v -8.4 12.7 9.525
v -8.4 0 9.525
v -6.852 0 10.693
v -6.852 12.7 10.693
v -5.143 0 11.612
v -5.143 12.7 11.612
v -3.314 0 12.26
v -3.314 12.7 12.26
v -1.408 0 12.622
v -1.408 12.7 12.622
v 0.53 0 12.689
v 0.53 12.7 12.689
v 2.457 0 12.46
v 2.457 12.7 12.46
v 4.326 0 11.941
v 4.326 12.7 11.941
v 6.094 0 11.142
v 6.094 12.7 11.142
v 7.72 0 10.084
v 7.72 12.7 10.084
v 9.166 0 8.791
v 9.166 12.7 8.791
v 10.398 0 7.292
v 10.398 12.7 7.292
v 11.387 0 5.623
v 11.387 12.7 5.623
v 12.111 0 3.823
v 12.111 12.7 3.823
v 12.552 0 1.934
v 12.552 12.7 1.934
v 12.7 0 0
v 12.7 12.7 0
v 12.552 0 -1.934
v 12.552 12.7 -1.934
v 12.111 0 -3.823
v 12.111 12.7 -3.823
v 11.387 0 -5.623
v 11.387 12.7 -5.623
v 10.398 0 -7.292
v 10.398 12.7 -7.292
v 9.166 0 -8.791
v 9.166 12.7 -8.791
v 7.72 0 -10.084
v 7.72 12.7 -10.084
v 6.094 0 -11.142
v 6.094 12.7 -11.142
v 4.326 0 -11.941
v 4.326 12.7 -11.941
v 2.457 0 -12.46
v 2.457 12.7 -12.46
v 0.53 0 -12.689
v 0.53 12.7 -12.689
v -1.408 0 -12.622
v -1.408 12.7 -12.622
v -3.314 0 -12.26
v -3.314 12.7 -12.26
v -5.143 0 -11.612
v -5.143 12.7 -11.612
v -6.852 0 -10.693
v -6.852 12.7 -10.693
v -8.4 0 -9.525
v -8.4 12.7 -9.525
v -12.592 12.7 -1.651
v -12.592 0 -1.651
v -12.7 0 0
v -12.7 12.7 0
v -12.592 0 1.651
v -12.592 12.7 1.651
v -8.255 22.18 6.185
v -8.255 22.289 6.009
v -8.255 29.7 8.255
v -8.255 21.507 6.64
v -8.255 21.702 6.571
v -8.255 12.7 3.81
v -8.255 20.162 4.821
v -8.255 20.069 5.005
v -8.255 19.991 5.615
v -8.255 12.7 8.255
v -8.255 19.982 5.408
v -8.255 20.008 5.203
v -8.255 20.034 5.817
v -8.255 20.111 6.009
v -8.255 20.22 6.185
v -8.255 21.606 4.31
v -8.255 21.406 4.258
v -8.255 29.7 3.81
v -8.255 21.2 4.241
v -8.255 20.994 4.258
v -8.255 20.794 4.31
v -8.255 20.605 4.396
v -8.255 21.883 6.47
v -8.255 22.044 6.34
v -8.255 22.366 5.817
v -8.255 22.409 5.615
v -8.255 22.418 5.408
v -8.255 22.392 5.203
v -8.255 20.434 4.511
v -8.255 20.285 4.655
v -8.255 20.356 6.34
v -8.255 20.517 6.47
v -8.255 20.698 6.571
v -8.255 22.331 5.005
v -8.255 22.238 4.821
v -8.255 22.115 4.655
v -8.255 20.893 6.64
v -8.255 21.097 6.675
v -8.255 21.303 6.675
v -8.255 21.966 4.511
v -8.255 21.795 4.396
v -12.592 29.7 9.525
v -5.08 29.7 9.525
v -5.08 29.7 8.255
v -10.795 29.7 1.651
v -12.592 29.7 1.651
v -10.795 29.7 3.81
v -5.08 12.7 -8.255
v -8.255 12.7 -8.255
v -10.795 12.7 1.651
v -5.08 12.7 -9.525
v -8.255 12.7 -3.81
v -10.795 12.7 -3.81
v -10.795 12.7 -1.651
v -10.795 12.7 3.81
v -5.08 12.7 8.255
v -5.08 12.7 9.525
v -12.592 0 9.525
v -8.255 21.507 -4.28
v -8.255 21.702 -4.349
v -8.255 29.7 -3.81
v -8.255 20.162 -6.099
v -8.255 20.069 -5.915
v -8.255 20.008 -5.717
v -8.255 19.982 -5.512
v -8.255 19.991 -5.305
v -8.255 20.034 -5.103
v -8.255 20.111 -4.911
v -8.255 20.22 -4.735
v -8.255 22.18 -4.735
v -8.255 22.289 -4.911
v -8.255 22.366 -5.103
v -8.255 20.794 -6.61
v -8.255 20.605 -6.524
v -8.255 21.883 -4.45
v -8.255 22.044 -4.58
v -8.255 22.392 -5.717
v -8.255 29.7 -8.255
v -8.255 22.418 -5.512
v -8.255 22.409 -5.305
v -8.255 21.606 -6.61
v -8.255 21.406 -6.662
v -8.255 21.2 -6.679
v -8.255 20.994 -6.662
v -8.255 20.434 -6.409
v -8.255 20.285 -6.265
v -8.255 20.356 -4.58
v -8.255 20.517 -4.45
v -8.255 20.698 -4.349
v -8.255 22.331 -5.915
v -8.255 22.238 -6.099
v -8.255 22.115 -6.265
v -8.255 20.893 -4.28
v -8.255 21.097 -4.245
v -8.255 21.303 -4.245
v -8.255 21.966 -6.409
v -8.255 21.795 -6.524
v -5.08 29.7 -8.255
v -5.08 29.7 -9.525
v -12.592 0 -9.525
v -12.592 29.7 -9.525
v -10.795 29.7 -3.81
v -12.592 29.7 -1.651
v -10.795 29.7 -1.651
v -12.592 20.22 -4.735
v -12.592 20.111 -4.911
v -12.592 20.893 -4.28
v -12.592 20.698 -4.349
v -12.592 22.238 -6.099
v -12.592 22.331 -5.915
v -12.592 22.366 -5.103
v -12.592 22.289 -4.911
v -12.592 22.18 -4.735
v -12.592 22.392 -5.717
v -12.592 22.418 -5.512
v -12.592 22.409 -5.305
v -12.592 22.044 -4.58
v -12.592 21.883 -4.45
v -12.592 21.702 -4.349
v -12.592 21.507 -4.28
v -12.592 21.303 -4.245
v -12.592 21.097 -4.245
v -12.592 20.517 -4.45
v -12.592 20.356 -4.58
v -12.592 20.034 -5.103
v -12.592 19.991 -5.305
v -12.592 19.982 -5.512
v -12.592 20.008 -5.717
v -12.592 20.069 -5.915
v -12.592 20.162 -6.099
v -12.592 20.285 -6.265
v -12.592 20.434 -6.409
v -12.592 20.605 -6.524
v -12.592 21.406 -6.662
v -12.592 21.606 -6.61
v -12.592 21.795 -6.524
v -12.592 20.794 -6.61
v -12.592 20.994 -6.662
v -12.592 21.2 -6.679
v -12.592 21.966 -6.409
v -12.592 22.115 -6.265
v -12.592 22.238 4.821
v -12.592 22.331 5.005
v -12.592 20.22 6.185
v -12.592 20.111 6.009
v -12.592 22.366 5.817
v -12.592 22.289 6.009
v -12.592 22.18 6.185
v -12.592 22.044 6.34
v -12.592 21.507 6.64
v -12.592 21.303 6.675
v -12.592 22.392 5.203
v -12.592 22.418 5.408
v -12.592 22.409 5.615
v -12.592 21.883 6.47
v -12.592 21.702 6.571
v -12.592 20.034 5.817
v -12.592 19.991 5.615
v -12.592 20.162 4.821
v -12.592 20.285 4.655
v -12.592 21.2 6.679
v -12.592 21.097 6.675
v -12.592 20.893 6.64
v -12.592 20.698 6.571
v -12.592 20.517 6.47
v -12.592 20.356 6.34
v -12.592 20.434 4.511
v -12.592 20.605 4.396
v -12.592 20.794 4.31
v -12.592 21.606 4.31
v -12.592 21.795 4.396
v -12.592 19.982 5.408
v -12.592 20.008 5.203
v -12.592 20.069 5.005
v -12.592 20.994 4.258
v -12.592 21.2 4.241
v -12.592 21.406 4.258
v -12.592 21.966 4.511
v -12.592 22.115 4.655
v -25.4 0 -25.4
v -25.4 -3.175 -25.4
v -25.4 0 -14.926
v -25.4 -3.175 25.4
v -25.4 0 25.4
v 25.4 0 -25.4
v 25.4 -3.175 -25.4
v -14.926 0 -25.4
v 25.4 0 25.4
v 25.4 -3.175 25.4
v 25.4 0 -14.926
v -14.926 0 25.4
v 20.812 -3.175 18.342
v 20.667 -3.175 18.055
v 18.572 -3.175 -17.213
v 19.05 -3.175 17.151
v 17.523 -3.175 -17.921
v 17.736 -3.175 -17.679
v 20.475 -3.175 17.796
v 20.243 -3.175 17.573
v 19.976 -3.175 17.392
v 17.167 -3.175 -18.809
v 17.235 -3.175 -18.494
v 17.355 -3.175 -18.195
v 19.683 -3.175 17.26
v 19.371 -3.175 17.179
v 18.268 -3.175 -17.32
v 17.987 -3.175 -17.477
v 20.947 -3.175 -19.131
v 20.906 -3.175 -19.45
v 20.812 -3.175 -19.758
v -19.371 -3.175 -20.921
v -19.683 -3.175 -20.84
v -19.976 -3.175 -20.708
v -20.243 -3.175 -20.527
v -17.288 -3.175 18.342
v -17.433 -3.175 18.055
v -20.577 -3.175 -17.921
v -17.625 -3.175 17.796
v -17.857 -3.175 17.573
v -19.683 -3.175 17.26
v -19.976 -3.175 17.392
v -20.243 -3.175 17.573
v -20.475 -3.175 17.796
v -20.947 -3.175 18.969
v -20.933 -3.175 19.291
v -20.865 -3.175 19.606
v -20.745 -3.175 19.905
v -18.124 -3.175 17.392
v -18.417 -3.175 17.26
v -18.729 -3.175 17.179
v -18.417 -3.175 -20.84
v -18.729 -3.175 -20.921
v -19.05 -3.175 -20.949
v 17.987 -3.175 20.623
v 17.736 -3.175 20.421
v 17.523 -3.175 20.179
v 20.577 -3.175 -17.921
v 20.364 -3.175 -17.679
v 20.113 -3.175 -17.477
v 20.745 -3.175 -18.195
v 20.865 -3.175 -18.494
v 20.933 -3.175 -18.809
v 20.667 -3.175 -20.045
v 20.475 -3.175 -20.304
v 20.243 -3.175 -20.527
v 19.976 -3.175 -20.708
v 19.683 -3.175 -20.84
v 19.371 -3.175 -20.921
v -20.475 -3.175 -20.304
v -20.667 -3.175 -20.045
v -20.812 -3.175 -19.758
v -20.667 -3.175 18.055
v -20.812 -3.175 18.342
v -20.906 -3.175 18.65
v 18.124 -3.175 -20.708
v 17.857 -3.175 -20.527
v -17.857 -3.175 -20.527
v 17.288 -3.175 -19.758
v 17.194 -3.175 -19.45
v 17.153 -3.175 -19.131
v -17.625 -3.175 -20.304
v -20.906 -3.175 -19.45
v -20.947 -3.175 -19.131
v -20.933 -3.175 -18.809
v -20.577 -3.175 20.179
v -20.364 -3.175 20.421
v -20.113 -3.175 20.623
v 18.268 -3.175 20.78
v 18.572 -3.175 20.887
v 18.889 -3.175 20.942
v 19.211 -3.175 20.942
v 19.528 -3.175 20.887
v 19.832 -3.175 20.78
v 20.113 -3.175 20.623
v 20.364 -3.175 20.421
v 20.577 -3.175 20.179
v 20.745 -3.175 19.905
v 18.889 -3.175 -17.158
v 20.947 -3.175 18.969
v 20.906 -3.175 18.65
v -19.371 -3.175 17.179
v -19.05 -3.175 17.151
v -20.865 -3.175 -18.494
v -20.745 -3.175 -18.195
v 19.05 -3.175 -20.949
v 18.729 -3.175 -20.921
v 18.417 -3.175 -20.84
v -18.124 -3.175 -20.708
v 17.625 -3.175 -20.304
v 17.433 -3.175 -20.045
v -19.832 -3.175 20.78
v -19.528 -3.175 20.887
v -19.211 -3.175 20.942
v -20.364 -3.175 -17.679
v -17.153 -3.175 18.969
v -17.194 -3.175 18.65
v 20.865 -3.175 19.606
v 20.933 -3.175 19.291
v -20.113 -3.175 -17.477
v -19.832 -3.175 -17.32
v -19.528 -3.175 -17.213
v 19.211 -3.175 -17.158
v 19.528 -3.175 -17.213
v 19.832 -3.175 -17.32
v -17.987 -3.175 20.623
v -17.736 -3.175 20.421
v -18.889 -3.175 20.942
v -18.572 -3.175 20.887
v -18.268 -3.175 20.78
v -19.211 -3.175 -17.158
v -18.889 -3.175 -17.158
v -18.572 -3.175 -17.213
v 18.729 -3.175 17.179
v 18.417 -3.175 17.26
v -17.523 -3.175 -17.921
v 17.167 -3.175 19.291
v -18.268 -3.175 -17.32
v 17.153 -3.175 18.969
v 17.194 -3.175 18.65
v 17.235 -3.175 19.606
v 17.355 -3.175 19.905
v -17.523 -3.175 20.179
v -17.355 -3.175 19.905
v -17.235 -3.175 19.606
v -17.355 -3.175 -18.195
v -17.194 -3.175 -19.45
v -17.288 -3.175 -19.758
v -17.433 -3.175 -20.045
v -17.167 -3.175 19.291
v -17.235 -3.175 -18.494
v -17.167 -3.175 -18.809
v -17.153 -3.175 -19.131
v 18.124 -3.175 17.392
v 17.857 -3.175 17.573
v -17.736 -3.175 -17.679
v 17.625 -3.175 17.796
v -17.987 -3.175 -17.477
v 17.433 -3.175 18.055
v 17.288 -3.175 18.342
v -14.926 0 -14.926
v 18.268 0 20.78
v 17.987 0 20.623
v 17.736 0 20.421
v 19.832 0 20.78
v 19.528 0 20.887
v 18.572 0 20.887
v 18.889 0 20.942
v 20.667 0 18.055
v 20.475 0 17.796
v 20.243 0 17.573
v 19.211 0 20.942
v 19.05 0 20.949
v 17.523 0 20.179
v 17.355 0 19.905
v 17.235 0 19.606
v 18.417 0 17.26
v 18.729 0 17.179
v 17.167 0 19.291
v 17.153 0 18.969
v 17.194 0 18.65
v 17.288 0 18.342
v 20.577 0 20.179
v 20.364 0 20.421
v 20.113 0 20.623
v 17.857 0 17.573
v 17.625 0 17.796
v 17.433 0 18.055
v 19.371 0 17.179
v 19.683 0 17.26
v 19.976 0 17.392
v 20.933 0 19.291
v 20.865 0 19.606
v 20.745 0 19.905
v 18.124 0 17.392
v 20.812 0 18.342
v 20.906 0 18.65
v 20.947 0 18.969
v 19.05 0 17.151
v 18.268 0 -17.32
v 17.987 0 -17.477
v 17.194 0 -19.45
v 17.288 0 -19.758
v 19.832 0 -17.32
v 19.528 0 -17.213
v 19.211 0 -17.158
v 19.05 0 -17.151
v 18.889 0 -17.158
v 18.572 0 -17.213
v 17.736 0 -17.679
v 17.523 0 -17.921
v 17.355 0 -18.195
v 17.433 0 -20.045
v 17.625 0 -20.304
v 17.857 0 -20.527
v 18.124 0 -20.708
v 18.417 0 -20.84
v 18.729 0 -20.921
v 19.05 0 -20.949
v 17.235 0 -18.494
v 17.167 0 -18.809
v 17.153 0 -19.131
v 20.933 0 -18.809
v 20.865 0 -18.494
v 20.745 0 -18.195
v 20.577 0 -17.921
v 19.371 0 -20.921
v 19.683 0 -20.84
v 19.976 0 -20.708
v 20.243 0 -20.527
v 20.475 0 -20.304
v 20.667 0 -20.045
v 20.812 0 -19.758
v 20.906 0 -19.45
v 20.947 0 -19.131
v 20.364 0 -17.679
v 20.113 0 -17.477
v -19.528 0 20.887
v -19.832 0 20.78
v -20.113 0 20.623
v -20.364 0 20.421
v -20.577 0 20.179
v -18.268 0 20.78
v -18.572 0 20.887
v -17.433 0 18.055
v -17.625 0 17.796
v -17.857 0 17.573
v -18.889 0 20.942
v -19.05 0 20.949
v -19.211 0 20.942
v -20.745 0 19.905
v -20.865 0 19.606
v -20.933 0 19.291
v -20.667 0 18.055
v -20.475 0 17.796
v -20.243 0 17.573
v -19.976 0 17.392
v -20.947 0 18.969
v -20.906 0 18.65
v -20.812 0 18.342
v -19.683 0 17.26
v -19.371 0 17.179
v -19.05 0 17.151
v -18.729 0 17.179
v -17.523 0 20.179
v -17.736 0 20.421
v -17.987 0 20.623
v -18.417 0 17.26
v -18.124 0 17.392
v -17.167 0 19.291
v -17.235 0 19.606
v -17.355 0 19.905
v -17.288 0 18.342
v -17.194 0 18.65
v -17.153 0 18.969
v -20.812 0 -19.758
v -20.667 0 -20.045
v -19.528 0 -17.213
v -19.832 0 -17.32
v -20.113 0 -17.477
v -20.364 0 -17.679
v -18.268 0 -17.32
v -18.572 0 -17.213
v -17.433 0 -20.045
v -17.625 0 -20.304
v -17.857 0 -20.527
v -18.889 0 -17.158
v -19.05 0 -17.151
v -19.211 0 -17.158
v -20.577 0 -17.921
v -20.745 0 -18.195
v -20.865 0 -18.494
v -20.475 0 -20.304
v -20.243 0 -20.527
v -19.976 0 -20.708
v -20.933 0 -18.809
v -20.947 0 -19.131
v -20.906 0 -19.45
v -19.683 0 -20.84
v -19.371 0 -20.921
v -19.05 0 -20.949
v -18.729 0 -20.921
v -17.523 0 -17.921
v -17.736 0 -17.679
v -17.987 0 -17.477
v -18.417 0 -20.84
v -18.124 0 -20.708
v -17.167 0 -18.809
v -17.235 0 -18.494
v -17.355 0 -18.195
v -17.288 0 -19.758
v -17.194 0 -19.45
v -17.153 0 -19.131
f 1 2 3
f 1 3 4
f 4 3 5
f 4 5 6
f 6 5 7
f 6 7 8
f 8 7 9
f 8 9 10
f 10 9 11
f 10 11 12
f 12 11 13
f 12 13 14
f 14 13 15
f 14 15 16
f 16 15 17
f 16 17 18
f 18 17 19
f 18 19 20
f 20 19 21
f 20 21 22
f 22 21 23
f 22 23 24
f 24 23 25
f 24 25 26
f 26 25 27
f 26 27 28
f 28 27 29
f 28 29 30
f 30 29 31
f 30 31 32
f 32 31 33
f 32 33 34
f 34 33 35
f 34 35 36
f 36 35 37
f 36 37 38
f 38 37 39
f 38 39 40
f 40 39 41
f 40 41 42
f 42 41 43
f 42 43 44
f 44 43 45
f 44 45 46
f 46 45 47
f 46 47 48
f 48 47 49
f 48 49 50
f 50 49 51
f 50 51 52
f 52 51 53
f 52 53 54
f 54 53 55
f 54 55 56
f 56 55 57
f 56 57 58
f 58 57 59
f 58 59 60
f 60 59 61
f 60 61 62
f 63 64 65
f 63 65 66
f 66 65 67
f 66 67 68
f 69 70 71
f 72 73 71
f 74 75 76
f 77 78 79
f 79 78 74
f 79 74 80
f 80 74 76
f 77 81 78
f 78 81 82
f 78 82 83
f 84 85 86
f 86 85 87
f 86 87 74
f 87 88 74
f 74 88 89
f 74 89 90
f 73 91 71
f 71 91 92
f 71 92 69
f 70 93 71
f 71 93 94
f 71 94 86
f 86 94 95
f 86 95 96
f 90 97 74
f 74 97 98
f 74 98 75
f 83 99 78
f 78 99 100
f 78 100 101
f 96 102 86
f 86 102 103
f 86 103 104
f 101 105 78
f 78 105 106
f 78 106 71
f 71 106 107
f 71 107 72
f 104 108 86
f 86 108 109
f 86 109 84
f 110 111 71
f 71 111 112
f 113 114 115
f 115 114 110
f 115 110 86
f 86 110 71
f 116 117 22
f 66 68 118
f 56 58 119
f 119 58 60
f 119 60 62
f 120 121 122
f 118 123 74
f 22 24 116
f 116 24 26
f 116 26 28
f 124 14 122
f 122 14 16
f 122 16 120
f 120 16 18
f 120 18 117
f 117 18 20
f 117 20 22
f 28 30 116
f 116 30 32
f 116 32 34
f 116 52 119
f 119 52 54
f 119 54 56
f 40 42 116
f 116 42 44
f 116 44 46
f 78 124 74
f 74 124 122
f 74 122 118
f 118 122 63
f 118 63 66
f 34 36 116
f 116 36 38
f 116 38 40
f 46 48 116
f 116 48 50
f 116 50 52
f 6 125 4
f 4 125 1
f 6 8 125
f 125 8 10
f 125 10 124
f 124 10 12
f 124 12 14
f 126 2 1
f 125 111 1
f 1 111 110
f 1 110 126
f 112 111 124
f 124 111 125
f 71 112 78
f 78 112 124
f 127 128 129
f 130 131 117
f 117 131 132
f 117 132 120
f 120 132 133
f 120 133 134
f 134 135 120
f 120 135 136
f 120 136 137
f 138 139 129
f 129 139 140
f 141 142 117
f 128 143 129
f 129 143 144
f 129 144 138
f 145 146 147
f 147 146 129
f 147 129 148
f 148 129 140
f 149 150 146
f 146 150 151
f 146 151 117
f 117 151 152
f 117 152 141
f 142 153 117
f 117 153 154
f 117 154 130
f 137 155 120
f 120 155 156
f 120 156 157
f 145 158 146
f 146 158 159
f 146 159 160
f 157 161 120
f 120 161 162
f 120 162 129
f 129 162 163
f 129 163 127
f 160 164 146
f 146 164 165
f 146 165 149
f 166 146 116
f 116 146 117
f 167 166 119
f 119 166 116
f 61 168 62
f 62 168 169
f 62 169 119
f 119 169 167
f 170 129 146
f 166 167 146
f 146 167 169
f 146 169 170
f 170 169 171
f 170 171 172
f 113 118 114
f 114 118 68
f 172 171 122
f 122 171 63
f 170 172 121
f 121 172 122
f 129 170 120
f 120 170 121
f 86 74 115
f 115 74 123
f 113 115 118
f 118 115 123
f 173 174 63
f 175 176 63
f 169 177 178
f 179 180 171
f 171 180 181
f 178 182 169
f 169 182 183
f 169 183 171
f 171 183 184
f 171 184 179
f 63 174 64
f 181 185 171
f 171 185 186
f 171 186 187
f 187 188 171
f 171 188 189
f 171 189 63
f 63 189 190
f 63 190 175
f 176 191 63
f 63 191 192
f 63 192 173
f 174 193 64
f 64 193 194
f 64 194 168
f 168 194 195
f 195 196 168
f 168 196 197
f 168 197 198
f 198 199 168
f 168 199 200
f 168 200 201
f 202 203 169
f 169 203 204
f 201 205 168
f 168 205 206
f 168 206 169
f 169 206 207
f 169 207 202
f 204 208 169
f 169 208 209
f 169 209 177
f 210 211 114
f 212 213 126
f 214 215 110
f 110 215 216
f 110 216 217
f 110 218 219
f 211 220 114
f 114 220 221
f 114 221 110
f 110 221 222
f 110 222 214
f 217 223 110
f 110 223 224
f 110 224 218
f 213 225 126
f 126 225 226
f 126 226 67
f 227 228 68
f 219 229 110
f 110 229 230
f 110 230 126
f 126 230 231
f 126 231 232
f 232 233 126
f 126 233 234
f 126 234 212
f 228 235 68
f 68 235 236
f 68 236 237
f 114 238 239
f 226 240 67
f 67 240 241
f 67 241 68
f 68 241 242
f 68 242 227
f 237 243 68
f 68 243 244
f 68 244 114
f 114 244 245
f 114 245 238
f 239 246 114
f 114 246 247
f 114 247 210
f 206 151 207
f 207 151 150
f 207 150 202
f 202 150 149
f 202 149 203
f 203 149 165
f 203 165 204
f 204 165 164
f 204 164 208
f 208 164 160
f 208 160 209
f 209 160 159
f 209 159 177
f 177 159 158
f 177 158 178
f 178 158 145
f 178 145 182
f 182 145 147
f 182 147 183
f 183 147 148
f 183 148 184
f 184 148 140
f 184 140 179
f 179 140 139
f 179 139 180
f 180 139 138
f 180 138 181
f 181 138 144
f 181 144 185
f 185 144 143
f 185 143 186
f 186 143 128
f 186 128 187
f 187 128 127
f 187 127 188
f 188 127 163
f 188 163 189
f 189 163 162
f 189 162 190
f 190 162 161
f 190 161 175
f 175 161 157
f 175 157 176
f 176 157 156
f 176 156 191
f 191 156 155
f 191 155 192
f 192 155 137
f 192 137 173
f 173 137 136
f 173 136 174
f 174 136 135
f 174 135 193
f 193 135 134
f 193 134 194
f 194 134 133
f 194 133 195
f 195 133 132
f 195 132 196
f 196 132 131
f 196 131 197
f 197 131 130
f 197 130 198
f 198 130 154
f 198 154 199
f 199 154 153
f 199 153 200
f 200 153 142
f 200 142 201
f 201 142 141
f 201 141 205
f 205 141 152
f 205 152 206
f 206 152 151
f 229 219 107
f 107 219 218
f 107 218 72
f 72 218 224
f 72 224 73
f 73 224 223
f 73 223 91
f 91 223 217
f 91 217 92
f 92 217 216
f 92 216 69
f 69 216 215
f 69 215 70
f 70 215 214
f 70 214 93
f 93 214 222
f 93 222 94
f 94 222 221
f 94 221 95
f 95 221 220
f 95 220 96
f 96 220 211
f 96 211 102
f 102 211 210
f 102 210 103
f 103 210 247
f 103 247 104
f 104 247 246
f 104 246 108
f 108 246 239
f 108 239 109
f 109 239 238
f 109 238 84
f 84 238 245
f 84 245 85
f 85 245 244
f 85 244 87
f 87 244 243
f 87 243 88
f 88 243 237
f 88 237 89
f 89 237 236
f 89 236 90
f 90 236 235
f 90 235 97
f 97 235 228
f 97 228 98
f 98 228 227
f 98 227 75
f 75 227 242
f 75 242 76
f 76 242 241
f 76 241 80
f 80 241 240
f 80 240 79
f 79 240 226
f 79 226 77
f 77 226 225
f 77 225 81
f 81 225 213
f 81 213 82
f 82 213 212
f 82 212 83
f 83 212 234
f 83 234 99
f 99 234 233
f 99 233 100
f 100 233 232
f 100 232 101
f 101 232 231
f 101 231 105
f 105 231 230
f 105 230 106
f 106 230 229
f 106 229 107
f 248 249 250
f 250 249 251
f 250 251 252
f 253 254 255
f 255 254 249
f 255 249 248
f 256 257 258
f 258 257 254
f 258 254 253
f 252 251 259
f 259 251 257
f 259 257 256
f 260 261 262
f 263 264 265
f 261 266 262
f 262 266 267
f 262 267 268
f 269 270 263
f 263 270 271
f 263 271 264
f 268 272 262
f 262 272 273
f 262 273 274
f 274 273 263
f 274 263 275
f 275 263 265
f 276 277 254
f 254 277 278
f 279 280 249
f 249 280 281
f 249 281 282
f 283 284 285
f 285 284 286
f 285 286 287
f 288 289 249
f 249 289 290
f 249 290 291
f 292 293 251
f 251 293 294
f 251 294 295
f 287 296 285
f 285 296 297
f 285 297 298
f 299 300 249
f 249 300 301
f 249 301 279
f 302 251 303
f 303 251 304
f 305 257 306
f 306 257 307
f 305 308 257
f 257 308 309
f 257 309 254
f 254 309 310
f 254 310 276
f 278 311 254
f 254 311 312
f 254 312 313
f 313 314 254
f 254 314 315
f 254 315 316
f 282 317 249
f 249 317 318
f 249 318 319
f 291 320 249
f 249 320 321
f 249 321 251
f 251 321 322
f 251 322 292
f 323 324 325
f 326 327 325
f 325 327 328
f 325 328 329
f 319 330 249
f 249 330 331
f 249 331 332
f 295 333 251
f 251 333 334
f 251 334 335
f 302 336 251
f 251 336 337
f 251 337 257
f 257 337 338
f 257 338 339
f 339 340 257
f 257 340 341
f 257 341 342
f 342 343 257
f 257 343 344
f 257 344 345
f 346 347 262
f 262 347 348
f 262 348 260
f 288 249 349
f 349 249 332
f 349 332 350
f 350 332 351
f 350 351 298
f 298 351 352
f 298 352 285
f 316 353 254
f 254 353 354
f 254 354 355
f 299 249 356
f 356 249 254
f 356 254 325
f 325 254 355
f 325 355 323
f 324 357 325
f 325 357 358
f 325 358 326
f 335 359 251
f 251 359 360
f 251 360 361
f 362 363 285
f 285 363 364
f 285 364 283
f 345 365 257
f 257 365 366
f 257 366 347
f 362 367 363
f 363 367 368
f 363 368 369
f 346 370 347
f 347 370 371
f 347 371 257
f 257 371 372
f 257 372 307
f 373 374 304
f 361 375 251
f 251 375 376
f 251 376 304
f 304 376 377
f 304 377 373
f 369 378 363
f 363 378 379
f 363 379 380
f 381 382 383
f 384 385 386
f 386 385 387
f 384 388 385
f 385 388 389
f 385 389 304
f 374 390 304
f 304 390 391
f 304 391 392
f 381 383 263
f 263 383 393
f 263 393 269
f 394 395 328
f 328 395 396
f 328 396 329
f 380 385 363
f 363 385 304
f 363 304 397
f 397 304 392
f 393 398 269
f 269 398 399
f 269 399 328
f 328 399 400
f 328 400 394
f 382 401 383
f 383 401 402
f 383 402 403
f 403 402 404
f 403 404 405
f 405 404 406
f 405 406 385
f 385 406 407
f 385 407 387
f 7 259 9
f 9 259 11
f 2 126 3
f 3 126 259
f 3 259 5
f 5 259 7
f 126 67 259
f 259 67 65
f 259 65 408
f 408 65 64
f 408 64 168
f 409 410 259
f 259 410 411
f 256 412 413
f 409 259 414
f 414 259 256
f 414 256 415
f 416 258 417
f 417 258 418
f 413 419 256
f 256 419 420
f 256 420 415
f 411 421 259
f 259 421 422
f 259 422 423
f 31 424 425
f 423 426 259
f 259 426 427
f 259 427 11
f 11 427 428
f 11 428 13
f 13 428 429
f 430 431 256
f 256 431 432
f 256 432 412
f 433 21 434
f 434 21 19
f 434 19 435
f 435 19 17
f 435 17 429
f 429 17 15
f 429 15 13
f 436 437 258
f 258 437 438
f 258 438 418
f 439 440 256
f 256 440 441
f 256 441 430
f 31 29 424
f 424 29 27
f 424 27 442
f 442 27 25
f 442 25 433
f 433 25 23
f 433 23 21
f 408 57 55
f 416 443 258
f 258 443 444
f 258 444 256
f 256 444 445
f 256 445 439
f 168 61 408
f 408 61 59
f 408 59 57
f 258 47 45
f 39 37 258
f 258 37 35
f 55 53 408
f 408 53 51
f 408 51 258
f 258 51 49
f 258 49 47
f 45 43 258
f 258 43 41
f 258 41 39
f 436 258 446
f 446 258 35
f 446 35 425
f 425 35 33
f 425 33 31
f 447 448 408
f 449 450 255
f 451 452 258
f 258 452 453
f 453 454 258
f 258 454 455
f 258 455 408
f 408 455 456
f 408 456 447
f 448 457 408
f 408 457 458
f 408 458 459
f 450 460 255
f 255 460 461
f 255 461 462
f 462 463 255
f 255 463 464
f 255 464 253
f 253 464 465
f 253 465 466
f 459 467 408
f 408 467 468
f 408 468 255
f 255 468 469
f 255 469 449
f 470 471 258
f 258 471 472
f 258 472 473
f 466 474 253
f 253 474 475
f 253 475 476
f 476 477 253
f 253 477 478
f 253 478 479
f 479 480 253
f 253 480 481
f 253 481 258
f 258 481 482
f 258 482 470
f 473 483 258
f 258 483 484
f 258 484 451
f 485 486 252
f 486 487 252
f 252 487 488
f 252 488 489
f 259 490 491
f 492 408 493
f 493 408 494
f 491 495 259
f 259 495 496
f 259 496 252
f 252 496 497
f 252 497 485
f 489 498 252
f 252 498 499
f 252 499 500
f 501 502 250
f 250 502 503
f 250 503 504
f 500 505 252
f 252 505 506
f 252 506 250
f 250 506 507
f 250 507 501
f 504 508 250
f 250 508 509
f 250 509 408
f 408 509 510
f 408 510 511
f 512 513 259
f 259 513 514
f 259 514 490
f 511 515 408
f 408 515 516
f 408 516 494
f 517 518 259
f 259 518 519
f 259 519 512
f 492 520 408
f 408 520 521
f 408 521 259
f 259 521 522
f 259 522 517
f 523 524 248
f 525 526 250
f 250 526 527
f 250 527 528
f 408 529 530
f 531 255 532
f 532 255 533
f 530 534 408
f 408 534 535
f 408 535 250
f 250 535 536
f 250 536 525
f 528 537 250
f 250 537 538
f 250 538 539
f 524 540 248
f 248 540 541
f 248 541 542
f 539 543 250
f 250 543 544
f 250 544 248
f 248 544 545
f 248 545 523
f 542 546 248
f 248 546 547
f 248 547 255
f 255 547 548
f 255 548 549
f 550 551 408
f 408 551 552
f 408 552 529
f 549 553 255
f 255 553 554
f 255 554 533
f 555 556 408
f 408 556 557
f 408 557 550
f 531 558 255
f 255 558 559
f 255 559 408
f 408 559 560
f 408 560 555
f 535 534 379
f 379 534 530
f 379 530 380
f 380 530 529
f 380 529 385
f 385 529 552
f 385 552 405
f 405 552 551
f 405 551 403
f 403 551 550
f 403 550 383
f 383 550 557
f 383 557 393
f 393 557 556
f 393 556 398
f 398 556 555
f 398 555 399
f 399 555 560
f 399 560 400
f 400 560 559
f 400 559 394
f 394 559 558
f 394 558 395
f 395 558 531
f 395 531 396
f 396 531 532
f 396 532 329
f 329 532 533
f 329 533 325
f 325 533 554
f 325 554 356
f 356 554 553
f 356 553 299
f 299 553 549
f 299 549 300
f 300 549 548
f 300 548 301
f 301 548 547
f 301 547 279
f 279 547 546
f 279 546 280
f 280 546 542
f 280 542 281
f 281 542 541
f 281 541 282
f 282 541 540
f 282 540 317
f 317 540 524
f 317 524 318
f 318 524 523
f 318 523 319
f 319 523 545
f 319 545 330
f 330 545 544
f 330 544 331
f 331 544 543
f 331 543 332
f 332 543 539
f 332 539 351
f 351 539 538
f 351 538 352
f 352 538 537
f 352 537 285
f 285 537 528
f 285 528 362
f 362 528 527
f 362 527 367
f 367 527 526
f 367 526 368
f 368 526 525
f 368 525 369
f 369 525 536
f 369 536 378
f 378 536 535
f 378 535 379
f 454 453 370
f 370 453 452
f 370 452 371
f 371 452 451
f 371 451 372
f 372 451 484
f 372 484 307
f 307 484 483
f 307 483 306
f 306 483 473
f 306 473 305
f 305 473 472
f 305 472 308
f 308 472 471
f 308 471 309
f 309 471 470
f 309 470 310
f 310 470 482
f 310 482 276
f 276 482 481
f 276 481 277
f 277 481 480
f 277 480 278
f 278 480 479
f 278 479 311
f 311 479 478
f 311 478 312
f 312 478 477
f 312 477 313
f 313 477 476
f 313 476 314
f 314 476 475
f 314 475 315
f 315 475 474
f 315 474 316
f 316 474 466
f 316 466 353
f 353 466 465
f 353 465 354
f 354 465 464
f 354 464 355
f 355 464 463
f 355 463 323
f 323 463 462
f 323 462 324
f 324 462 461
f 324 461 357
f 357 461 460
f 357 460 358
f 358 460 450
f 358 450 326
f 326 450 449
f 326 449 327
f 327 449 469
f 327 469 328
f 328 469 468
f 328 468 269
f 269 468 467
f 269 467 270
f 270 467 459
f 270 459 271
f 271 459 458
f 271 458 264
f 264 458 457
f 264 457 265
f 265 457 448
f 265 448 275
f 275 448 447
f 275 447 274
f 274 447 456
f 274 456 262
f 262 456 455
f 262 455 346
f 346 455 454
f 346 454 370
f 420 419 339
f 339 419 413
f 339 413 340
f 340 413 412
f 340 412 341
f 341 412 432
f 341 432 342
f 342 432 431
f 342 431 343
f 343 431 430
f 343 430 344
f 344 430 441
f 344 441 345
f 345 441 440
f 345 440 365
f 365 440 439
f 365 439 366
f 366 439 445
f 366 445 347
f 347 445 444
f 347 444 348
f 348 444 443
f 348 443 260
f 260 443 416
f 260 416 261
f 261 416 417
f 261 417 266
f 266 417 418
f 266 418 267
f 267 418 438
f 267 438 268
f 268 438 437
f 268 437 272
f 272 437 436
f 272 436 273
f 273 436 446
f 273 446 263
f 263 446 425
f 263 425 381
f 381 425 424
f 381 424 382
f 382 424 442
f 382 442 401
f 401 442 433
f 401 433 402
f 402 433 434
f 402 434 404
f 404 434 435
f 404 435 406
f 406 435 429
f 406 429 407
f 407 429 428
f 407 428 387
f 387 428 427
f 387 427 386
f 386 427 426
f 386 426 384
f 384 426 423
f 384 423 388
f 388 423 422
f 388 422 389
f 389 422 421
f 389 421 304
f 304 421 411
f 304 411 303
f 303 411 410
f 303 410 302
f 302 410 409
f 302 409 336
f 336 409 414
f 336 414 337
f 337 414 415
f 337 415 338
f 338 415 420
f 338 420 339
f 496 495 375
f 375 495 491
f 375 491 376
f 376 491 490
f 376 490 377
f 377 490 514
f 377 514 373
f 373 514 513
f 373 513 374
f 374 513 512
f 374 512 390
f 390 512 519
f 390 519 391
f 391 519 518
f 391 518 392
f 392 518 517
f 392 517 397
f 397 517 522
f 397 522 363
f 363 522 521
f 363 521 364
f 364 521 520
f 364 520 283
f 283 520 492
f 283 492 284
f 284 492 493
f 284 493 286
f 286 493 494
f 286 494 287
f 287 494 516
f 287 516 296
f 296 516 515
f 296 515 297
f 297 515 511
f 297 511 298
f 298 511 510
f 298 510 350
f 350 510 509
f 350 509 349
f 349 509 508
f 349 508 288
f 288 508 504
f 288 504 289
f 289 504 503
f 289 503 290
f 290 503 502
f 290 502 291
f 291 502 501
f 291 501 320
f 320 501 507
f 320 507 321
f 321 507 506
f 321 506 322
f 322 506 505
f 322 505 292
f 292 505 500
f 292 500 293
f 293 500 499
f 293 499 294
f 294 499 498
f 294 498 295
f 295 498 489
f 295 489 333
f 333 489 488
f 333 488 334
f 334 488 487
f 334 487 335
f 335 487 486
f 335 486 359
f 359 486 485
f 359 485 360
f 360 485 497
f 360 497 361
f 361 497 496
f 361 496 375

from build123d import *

# Parameters (mm, degrees)
SKETCH1_R                 = 12.7
BOSS_EXTRUDE1_DEPTH       = 12.7
BOSS_EXTRUDE2_DEPTH       = 17
CUT_EXTRUDE3_DEPTH        = 17
BOSS_EXTRUDE4_REACH       = 36.708
F_2_CLEARANCE_HOLE1_D     = 2.4384
F_2_CLEARANCE_HOLE1_DEPTH = 25.4
F_2_CLEARANCE_HOLE1_TIP   = 0.732569267
SKETCH14_W                = 50.8
SKETCH14_H                = 50.8
BOSS_EXTRUDE7_DEPTH       = 3.175
F_6_CLEARANCE_HOLE1_D     = 3.7973
F_6_CLEARANCE_HOLE1_DEPTH = 25.4
F_6_CLEARANCE_HOLE1_TIP   = 1.140824014


with BuildPart() as part:
    # Sketch1 → Boss-Extrude1 (new body)
    with BuildSketch(Plane(origin=(0, 0, 0), x_dir=(1, 0, 0), z_dir=(0, 1, 0))):
        with Locations(Location((0, 0, 0), (0, 0, 270))):
            Circle(SKETCH1_R)
    extrude(amount=BOSS_EXTRUDE1_DEPTH)

    # Sketch7 → Boss-Extrude2 (add)
    with BuildSketch(Plane(origin=(0, 12.7, 0), x_dir=(1, 0, 0), z_dir=(0, 1, 0))):
        with BuildLine():
            ThreePointArc((-8.400260413, 9.525), (-11.575260413, 5.225260413), (-12.7, 0))
            ThreePointArc((-12.7, 0), (-11.575260413, -5.225260413), (-8.400260413, -9.525))
            Line((-8.400260413, -9.525), (-5.08, -9.525))
            Line((-5.08, -9.525), (-5.08, -8.255))
            Line((-5.08, -8.255), (-8.255, -8.255))
            Line((-8.255, -8.255), (-8.255, 8.255))
            Line((-8.255, 8.255), (-5.08, 8.255))
            Line((-5.08, 8.255), (-5.08, 9.525))
            Line((-5.08, 9.525), (-8.400260413, 9.525))
        make_face()
    extrude(amount=BOSS_EXTRUDE2_DEPTH)

    # Sketch8 → Cut-Extrude3 (cut)
    with BuildSketch(Plane(origin=(0, 29.7, 0), x_dir=(1, 0, 0), z_dir=(0, 1, 0))):
        Polygon((-8.255, -3.81), (-8.255, 3.81), (-10.795, 3.81), (-10.795, 1.651), (-12.7, 1.651), (-12.7, -1.651), (-10.795, -1.651), (-10.795, -3.81), align=None)
    extrude(amount=-CUT_EXTRUDE3_DEPTH, mode=Mode.SUBTRACT)

    # Boss-Extrude4: up to this face of the body (flat: up to its plane)
    boss_extrude4_end = Plane(part.part.faces().sort_by_distance((0, 0, 0))[0])
    # Sketch13 → Boss-Extrude4 (add, up to the picked face)
    with BuildSketch(Plane(origin=(0, 29.7, 0), x_dir=(1, 0, 0), z_dir=(0, 1, 0)), mode=Mode.PRIVATE) as boss_extrude4_sk1:
        with BuildLine():
            Line((-12.592227722, 1.651), (-12.592227722, 9.525))
            Line((-12.592227722, 9.525), (-8.400260413, 9.525))
            ThreePointArc((-8.400260413, 9.525), (-11.210312597, 5.968156456), (-12.592227722, 1.651))
        make_face()
    boss_extrude4_tool1 = split(extrude(boss_extrude4_sk1.sketch, amount=-BOSS_EXTRUDE4_REACH, mode=Mode.PRIVATE), bisect_by=boss_extrude4_end, keep=Keep.BOTH, mode=Mode.PRIVATE)
    # Sketch13 → Boss-Extrude4 (add, up to the picked face)
    with BuildSketch(Plane(origin=(0, 29.7, 0), x_dir=(1, 0, 0), z_dir=(0, 1, 0)), mode=Mode.PRIVATE) as boss_extrude4_sk2:
        with BuildLine():
            Line((-12.592227722, -1.651), (-12.592227722, -9.525))
            Line((-12.592227722, -9.525), (-8.400260413, -9.525))
            ThreePointArc((-8.400260413, -9.525), (-11.210312597, -5.968156456), (-12.592227722, -1.651))
        make_face()
    boss_extrude4_tool2 = split(extrude(boss_extrude4_sk2.sketch, amount=-BOSS_EXTRUDE4_REACH, mode=Mode.PRIVATE), bisect_by=boss_extrude4_end, keep=Keep.BOTH, mode=Mode.PRIVATE)
    add(boss_extrude4_tool1.solids().sort_by(Axis((-11.366083, 29.7, -7.381946), (0, -1, 0)))[0])
    add(boss_extrude4_tool2.solids().sort_by(Axis((-11.366083, 29.7, 7.381946), (0, -1, 0)))[0])

    # #2 Clearance Hole1
    with Locations(Plane(origin=(-8.255, 0, 0), x_dir=(0, 0, -1), z_dir=(1, 0, 0))):
        with Locations((-5.46, 21.2), (5.46, 21.2)):
            Hole(F_2_CLEARANCE_HOLE1_D / 2, depth=F_2_CLEARANCE_HOLE1_DEPTH)
            with Locations((0, 0, -(F_2_CLEARANCE_HOLE1_DEPTH + F_2_CLEARANCE_HOLE1_TIP / 2))):  # 118° drill point
                Cone(0, F_2_CLEARANCE_HOLE1_D / 2, F_2_CLEARANCE_HOLE1_TIP, mode=Mode.SUBTRACT)

    # Sketch14 → Boss-Extrude7 (add)
    with BuildSketch(Plane.XZ):
        Rectangle(SKETCH14_W, SKETCH14_H)
    extrude(amount=BOSS_EXTRUDE7_DEPTH)

    # #6 Clearance Hole1
    with Locations(Plane(origin=(0, -3.175, 0), x_dir=(-1, 0, 0), z_dir=(0, -1, 0))):
        with Locations((19.05, -19.05), (-19.05, -19.05), (-19.05, 19.05), (19.05, 19.05)):
            Hole(F_6_CLEARANCE_HOLE1_D / 2, depth=F_6_CLEARANCE_HOLE1_DEPTH)
            with Locations((0, 0, -(F_6_CLEARANCE_HOLE1_DEPTH + F_6_CLEARANCE_HOLE1_TIP / 2))):  # 118° drill point
                Cone(0, F_6_CLEARANCE_HOLE1_D / 2, F_6_CLEARANCE_HOLE1_TIP, mode=Mode.SUBTRACT)


solid = part.part
